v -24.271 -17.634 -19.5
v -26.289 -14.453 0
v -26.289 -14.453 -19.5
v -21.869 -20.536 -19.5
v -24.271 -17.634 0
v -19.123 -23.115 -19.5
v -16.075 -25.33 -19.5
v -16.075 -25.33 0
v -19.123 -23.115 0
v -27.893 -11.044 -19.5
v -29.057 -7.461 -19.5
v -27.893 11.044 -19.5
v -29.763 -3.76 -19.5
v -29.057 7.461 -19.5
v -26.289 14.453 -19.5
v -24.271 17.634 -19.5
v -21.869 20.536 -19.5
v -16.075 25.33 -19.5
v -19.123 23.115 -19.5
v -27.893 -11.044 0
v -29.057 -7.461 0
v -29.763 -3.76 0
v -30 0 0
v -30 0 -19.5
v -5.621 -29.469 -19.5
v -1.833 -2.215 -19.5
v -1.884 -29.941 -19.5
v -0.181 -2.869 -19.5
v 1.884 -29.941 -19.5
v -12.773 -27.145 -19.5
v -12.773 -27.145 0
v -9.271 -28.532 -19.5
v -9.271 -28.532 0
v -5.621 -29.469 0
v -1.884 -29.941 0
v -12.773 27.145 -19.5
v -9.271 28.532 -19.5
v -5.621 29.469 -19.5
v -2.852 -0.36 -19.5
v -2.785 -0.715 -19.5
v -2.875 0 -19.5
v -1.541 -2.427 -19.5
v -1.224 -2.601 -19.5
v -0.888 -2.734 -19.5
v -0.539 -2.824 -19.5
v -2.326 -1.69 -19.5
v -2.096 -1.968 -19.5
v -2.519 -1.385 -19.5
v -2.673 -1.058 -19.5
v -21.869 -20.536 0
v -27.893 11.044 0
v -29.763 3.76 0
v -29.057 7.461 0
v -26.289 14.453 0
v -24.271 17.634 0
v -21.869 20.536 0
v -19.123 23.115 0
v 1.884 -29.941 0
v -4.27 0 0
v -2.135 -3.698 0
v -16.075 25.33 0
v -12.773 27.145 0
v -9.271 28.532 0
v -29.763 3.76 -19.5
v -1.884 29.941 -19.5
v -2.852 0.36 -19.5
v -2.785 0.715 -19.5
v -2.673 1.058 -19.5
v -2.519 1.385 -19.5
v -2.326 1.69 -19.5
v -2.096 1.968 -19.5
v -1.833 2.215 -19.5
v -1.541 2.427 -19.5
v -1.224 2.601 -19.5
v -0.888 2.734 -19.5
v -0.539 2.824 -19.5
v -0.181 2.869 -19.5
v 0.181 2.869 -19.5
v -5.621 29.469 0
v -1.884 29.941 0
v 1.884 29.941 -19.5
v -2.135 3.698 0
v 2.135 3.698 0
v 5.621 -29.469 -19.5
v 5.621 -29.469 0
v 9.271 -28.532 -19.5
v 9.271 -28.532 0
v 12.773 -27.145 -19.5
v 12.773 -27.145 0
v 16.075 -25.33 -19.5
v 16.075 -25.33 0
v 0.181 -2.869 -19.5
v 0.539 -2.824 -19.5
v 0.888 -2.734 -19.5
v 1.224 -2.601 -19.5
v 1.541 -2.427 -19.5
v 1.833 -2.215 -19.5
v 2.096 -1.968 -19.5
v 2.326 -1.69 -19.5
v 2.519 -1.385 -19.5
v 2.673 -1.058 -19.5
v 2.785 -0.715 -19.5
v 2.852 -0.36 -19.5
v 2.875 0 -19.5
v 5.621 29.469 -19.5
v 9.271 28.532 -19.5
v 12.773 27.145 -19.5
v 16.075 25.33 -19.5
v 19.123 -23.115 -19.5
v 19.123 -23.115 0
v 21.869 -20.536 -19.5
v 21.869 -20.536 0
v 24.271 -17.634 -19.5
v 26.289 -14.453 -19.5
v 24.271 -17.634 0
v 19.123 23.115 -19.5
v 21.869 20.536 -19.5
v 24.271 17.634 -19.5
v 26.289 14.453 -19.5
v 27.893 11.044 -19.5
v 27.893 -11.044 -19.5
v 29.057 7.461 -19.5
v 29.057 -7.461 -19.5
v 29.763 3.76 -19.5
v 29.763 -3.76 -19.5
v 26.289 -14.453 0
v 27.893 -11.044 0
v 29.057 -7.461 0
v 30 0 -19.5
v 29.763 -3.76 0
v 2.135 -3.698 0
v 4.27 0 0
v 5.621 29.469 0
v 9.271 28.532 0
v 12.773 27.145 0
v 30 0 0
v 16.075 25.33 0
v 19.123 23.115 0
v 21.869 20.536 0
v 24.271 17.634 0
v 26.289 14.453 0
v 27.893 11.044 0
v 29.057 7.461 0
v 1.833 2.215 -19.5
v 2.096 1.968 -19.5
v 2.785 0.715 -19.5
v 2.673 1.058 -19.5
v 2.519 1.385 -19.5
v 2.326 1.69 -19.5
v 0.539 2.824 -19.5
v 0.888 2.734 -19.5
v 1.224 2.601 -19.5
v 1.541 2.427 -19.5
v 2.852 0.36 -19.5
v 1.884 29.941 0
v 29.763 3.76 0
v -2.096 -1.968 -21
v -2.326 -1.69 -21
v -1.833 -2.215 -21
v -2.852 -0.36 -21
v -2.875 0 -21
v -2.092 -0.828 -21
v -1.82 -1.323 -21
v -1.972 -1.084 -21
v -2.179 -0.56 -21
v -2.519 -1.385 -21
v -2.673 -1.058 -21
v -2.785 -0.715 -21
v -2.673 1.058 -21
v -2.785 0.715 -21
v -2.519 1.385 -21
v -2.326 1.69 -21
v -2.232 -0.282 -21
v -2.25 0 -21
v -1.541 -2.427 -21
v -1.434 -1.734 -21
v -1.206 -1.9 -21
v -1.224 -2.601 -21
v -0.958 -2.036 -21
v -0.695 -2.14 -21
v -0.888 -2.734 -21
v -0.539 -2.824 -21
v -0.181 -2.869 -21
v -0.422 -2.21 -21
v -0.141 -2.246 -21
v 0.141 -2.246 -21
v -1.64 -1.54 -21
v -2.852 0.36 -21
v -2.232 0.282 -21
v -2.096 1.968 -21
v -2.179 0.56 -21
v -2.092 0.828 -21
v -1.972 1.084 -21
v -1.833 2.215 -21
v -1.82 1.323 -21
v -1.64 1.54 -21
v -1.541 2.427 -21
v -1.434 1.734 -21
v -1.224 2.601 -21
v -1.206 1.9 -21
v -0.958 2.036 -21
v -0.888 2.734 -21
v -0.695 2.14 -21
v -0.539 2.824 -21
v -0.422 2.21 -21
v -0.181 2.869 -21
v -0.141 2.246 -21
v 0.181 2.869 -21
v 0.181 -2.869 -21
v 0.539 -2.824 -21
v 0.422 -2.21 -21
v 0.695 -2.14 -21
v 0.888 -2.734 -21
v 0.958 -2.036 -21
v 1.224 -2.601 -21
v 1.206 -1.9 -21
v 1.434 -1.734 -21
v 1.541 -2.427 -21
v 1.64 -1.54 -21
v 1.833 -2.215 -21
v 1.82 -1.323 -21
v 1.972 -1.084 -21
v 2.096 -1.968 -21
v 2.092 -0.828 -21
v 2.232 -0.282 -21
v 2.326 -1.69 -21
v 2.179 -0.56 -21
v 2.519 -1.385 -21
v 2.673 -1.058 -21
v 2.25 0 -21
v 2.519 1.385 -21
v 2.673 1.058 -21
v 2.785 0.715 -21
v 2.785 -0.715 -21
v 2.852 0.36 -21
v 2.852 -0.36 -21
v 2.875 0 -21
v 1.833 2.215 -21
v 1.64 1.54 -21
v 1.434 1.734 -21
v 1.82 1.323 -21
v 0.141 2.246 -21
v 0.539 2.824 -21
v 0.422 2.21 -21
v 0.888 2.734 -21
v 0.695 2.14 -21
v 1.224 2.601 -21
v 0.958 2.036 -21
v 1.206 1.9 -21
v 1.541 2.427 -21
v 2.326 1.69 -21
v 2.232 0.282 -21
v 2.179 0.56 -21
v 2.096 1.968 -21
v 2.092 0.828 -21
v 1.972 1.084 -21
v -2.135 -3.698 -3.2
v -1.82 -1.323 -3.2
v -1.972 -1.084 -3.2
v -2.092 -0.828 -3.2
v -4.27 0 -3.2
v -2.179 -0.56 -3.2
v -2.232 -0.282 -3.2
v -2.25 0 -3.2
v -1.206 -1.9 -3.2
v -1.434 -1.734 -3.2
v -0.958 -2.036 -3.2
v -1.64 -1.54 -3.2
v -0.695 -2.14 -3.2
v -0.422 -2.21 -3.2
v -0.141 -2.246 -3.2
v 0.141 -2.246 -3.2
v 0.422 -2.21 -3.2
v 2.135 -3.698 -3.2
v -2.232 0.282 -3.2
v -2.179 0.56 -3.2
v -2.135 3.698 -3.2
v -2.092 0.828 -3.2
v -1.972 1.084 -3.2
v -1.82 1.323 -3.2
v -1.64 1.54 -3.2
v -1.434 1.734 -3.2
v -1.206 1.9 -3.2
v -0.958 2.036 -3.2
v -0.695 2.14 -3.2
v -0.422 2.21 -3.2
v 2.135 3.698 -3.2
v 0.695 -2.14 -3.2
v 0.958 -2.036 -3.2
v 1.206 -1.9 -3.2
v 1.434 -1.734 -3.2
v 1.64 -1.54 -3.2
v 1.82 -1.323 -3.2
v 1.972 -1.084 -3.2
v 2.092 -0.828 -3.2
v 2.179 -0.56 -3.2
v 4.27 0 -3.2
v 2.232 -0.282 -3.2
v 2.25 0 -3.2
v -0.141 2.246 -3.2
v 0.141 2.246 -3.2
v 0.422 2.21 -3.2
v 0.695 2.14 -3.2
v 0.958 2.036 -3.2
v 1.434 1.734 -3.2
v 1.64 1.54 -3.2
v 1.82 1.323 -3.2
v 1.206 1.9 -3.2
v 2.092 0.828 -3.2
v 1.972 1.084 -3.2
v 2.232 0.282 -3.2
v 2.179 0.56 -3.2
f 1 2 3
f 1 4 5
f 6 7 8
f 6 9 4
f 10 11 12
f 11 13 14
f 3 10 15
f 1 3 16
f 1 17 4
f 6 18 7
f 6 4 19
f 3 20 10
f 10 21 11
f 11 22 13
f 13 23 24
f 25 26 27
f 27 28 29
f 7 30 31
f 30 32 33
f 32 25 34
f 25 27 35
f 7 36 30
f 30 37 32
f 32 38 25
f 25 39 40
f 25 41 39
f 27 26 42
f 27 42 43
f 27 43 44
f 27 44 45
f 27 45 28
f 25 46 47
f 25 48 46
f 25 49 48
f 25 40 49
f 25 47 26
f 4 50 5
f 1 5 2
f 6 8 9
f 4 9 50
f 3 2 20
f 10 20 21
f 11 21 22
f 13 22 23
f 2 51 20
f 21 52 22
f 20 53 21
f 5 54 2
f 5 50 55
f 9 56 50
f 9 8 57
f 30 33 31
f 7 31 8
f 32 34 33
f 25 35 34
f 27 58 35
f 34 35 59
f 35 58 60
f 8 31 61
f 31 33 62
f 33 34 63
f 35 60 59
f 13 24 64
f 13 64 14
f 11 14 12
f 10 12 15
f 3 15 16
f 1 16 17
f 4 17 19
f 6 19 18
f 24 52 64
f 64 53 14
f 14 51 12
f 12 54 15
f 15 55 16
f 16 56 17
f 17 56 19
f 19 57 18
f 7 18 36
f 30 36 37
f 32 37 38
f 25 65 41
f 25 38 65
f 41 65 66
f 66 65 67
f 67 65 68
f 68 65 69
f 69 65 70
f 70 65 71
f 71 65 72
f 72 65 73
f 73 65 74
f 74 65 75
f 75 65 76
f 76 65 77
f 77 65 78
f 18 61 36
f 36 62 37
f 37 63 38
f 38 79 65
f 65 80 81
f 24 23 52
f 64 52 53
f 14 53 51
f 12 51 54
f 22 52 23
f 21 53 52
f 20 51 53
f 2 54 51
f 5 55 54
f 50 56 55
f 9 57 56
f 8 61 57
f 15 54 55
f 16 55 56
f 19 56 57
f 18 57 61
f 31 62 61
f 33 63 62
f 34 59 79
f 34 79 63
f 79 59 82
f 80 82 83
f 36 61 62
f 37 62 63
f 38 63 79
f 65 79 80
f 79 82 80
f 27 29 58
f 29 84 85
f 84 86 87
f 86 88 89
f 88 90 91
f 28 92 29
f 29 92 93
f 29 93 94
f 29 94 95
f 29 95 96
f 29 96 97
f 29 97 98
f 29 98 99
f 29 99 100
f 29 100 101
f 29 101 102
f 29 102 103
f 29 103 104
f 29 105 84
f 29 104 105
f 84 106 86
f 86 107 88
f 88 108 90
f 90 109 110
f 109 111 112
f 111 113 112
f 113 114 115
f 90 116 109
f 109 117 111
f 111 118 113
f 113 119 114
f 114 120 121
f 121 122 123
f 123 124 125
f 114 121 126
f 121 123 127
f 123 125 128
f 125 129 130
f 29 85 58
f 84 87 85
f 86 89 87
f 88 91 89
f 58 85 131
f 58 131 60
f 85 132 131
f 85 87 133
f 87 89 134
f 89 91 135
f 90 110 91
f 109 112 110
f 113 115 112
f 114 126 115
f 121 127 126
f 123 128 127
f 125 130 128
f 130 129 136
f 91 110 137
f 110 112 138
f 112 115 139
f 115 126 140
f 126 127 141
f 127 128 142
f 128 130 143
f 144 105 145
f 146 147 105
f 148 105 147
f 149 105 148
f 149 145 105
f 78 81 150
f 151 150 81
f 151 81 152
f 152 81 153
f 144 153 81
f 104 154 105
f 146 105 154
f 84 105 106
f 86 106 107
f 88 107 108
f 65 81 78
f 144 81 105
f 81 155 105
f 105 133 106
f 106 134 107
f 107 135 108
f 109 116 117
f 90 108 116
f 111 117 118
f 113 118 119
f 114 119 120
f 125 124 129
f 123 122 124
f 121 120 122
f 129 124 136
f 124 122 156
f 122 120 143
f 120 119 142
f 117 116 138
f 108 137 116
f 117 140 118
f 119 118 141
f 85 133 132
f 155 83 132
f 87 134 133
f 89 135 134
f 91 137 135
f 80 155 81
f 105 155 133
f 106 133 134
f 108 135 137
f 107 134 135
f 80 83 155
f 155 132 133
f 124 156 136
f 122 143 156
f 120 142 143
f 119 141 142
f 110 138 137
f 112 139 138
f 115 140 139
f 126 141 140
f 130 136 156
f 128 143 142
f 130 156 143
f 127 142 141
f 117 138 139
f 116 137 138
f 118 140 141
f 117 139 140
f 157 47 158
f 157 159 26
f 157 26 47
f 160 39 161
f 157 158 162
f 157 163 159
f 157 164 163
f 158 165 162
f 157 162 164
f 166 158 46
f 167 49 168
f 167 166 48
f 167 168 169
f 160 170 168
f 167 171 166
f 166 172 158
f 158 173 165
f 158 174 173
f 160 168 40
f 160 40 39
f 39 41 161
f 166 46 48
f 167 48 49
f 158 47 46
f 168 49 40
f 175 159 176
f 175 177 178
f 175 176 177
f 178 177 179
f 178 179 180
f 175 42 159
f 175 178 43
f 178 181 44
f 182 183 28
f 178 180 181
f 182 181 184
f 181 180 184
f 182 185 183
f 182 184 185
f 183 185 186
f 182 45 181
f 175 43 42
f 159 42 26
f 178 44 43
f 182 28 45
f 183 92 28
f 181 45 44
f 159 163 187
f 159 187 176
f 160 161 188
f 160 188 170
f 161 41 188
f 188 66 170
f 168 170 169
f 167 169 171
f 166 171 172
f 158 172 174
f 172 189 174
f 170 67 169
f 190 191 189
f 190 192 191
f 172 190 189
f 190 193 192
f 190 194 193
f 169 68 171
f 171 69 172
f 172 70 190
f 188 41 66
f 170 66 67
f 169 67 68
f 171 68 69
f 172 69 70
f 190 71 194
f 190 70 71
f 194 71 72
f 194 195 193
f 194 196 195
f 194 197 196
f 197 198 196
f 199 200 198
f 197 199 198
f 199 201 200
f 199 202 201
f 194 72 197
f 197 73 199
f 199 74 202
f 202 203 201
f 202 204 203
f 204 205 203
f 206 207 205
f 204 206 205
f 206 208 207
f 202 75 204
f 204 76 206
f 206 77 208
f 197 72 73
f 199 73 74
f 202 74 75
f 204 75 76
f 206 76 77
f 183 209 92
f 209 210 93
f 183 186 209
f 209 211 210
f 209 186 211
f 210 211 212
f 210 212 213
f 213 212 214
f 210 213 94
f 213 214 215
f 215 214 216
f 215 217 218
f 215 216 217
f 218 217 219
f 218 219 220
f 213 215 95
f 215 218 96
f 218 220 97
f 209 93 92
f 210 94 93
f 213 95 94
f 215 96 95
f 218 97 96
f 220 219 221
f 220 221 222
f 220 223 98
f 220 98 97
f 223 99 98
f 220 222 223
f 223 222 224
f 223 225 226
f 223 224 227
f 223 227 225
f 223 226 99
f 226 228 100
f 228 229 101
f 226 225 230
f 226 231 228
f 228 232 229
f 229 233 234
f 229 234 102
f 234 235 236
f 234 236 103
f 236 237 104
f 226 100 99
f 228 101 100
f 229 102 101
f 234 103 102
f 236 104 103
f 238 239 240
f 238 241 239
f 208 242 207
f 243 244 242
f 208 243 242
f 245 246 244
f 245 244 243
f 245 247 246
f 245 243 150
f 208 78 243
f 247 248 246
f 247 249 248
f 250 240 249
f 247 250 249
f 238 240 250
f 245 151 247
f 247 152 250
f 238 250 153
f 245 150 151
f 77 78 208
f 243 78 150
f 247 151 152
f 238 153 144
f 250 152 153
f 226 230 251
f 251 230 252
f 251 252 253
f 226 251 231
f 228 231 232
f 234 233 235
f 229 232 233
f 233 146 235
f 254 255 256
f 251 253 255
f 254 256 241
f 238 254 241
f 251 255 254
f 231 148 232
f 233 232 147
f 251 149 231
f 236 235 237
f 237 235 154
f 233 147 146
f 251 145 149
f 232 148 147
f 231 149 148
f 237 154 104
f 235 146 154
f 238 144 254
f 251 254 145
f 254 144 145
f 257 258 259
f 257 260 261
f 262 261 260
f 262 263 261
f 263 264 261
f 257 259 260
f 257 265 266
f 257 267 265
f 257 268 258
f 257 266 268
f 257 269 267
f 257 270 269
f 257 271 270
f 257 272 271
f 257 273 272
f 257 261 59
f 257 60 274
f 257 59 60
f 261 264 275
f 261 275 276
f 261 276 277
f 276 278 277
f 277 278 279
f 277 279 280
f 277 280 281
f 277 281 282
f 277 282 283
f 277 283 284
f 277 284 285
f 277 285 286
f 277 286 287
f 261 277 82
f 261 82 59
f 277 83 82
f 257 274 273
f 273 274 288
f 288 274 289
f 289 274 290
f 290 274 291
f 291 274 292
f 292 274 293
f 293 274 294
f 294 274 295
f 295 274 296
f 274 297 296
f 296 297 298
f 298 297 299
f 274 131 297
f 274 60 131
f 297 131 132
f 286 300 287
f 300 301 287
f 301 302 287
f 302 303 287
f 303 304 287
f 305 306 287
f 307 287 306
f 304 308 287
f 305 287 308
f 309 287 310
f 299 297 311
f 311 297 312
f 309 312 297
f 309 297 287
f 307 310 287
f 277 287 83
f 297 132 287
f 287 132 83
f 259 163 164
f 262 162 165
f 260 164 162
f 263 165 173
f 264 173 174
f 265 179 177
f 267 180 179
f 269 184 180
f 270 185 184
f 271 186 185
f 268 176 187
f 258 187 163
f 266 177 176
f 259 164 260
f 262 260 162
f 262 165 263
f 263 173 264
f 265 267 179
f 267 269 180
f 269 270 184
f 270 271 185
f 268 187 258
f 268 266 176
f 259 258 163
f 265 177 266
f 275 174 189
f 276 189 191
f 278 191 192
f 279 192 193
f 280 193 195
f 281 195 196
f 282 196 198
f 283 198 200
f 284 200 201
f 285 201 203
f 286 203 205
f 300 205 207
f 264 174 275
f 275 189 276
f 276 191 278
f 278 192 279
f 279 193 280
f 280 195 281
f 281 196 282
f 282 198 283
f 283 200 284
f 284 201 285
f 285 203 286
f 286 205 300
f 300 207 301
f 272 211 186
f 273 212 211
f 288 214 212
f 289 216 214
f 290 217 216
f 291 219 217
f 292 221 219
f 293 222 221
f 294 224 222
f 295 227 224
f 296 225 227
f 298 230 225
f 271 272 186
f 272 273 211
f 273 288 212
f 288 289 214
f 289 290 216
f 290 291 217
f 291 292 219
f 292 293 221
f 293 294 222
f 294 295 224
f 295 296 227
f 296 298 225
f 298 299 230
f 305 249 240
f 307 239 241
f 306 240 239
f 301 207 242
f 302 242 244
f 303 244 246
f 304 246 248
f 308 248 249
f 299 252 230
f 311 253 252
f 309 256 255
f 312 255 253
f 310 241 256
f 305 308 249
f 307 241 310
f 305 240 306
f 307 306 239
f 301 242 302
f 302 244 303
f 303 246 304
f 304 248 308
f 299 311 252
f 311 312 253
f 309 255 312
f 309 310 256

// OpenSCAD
$fn = 50;

difference() {
	union() {
		translate(v = [0, 0, -19.5]) {
			cylinder(h = 19.5, r = 30.0);
		}
		#translate(v = [0, 0, -21.0]) {
			cylinder(h = 21, r = 2.875);
		}
	}
	union() {
		translate(v = [0, 0, 0]) {
			rotate(a = [0, 0, 0]) {
				difference() {
					union() {
						translate(v = [0, 0, -3.2]) {
							linear_extrude(height = 3.2) {
								polygon(points = [[4.2698, 0.0], [2.1349000000000005, 3.697755269078796], [-2.134899999999999, 3.6977552690787965], [-4.2698, 5.228996902999369e-16], [-2.134900000000002, -3.6977552690787956], [2.1348999999999974, -3.697755269078798]]);
							}
						}
					}
					union();
				}
			}
		}
		#translate(v = [0, 0, -100.0]) {
			cylinder(h = 200, r = 2.25);
		}
	}
}
